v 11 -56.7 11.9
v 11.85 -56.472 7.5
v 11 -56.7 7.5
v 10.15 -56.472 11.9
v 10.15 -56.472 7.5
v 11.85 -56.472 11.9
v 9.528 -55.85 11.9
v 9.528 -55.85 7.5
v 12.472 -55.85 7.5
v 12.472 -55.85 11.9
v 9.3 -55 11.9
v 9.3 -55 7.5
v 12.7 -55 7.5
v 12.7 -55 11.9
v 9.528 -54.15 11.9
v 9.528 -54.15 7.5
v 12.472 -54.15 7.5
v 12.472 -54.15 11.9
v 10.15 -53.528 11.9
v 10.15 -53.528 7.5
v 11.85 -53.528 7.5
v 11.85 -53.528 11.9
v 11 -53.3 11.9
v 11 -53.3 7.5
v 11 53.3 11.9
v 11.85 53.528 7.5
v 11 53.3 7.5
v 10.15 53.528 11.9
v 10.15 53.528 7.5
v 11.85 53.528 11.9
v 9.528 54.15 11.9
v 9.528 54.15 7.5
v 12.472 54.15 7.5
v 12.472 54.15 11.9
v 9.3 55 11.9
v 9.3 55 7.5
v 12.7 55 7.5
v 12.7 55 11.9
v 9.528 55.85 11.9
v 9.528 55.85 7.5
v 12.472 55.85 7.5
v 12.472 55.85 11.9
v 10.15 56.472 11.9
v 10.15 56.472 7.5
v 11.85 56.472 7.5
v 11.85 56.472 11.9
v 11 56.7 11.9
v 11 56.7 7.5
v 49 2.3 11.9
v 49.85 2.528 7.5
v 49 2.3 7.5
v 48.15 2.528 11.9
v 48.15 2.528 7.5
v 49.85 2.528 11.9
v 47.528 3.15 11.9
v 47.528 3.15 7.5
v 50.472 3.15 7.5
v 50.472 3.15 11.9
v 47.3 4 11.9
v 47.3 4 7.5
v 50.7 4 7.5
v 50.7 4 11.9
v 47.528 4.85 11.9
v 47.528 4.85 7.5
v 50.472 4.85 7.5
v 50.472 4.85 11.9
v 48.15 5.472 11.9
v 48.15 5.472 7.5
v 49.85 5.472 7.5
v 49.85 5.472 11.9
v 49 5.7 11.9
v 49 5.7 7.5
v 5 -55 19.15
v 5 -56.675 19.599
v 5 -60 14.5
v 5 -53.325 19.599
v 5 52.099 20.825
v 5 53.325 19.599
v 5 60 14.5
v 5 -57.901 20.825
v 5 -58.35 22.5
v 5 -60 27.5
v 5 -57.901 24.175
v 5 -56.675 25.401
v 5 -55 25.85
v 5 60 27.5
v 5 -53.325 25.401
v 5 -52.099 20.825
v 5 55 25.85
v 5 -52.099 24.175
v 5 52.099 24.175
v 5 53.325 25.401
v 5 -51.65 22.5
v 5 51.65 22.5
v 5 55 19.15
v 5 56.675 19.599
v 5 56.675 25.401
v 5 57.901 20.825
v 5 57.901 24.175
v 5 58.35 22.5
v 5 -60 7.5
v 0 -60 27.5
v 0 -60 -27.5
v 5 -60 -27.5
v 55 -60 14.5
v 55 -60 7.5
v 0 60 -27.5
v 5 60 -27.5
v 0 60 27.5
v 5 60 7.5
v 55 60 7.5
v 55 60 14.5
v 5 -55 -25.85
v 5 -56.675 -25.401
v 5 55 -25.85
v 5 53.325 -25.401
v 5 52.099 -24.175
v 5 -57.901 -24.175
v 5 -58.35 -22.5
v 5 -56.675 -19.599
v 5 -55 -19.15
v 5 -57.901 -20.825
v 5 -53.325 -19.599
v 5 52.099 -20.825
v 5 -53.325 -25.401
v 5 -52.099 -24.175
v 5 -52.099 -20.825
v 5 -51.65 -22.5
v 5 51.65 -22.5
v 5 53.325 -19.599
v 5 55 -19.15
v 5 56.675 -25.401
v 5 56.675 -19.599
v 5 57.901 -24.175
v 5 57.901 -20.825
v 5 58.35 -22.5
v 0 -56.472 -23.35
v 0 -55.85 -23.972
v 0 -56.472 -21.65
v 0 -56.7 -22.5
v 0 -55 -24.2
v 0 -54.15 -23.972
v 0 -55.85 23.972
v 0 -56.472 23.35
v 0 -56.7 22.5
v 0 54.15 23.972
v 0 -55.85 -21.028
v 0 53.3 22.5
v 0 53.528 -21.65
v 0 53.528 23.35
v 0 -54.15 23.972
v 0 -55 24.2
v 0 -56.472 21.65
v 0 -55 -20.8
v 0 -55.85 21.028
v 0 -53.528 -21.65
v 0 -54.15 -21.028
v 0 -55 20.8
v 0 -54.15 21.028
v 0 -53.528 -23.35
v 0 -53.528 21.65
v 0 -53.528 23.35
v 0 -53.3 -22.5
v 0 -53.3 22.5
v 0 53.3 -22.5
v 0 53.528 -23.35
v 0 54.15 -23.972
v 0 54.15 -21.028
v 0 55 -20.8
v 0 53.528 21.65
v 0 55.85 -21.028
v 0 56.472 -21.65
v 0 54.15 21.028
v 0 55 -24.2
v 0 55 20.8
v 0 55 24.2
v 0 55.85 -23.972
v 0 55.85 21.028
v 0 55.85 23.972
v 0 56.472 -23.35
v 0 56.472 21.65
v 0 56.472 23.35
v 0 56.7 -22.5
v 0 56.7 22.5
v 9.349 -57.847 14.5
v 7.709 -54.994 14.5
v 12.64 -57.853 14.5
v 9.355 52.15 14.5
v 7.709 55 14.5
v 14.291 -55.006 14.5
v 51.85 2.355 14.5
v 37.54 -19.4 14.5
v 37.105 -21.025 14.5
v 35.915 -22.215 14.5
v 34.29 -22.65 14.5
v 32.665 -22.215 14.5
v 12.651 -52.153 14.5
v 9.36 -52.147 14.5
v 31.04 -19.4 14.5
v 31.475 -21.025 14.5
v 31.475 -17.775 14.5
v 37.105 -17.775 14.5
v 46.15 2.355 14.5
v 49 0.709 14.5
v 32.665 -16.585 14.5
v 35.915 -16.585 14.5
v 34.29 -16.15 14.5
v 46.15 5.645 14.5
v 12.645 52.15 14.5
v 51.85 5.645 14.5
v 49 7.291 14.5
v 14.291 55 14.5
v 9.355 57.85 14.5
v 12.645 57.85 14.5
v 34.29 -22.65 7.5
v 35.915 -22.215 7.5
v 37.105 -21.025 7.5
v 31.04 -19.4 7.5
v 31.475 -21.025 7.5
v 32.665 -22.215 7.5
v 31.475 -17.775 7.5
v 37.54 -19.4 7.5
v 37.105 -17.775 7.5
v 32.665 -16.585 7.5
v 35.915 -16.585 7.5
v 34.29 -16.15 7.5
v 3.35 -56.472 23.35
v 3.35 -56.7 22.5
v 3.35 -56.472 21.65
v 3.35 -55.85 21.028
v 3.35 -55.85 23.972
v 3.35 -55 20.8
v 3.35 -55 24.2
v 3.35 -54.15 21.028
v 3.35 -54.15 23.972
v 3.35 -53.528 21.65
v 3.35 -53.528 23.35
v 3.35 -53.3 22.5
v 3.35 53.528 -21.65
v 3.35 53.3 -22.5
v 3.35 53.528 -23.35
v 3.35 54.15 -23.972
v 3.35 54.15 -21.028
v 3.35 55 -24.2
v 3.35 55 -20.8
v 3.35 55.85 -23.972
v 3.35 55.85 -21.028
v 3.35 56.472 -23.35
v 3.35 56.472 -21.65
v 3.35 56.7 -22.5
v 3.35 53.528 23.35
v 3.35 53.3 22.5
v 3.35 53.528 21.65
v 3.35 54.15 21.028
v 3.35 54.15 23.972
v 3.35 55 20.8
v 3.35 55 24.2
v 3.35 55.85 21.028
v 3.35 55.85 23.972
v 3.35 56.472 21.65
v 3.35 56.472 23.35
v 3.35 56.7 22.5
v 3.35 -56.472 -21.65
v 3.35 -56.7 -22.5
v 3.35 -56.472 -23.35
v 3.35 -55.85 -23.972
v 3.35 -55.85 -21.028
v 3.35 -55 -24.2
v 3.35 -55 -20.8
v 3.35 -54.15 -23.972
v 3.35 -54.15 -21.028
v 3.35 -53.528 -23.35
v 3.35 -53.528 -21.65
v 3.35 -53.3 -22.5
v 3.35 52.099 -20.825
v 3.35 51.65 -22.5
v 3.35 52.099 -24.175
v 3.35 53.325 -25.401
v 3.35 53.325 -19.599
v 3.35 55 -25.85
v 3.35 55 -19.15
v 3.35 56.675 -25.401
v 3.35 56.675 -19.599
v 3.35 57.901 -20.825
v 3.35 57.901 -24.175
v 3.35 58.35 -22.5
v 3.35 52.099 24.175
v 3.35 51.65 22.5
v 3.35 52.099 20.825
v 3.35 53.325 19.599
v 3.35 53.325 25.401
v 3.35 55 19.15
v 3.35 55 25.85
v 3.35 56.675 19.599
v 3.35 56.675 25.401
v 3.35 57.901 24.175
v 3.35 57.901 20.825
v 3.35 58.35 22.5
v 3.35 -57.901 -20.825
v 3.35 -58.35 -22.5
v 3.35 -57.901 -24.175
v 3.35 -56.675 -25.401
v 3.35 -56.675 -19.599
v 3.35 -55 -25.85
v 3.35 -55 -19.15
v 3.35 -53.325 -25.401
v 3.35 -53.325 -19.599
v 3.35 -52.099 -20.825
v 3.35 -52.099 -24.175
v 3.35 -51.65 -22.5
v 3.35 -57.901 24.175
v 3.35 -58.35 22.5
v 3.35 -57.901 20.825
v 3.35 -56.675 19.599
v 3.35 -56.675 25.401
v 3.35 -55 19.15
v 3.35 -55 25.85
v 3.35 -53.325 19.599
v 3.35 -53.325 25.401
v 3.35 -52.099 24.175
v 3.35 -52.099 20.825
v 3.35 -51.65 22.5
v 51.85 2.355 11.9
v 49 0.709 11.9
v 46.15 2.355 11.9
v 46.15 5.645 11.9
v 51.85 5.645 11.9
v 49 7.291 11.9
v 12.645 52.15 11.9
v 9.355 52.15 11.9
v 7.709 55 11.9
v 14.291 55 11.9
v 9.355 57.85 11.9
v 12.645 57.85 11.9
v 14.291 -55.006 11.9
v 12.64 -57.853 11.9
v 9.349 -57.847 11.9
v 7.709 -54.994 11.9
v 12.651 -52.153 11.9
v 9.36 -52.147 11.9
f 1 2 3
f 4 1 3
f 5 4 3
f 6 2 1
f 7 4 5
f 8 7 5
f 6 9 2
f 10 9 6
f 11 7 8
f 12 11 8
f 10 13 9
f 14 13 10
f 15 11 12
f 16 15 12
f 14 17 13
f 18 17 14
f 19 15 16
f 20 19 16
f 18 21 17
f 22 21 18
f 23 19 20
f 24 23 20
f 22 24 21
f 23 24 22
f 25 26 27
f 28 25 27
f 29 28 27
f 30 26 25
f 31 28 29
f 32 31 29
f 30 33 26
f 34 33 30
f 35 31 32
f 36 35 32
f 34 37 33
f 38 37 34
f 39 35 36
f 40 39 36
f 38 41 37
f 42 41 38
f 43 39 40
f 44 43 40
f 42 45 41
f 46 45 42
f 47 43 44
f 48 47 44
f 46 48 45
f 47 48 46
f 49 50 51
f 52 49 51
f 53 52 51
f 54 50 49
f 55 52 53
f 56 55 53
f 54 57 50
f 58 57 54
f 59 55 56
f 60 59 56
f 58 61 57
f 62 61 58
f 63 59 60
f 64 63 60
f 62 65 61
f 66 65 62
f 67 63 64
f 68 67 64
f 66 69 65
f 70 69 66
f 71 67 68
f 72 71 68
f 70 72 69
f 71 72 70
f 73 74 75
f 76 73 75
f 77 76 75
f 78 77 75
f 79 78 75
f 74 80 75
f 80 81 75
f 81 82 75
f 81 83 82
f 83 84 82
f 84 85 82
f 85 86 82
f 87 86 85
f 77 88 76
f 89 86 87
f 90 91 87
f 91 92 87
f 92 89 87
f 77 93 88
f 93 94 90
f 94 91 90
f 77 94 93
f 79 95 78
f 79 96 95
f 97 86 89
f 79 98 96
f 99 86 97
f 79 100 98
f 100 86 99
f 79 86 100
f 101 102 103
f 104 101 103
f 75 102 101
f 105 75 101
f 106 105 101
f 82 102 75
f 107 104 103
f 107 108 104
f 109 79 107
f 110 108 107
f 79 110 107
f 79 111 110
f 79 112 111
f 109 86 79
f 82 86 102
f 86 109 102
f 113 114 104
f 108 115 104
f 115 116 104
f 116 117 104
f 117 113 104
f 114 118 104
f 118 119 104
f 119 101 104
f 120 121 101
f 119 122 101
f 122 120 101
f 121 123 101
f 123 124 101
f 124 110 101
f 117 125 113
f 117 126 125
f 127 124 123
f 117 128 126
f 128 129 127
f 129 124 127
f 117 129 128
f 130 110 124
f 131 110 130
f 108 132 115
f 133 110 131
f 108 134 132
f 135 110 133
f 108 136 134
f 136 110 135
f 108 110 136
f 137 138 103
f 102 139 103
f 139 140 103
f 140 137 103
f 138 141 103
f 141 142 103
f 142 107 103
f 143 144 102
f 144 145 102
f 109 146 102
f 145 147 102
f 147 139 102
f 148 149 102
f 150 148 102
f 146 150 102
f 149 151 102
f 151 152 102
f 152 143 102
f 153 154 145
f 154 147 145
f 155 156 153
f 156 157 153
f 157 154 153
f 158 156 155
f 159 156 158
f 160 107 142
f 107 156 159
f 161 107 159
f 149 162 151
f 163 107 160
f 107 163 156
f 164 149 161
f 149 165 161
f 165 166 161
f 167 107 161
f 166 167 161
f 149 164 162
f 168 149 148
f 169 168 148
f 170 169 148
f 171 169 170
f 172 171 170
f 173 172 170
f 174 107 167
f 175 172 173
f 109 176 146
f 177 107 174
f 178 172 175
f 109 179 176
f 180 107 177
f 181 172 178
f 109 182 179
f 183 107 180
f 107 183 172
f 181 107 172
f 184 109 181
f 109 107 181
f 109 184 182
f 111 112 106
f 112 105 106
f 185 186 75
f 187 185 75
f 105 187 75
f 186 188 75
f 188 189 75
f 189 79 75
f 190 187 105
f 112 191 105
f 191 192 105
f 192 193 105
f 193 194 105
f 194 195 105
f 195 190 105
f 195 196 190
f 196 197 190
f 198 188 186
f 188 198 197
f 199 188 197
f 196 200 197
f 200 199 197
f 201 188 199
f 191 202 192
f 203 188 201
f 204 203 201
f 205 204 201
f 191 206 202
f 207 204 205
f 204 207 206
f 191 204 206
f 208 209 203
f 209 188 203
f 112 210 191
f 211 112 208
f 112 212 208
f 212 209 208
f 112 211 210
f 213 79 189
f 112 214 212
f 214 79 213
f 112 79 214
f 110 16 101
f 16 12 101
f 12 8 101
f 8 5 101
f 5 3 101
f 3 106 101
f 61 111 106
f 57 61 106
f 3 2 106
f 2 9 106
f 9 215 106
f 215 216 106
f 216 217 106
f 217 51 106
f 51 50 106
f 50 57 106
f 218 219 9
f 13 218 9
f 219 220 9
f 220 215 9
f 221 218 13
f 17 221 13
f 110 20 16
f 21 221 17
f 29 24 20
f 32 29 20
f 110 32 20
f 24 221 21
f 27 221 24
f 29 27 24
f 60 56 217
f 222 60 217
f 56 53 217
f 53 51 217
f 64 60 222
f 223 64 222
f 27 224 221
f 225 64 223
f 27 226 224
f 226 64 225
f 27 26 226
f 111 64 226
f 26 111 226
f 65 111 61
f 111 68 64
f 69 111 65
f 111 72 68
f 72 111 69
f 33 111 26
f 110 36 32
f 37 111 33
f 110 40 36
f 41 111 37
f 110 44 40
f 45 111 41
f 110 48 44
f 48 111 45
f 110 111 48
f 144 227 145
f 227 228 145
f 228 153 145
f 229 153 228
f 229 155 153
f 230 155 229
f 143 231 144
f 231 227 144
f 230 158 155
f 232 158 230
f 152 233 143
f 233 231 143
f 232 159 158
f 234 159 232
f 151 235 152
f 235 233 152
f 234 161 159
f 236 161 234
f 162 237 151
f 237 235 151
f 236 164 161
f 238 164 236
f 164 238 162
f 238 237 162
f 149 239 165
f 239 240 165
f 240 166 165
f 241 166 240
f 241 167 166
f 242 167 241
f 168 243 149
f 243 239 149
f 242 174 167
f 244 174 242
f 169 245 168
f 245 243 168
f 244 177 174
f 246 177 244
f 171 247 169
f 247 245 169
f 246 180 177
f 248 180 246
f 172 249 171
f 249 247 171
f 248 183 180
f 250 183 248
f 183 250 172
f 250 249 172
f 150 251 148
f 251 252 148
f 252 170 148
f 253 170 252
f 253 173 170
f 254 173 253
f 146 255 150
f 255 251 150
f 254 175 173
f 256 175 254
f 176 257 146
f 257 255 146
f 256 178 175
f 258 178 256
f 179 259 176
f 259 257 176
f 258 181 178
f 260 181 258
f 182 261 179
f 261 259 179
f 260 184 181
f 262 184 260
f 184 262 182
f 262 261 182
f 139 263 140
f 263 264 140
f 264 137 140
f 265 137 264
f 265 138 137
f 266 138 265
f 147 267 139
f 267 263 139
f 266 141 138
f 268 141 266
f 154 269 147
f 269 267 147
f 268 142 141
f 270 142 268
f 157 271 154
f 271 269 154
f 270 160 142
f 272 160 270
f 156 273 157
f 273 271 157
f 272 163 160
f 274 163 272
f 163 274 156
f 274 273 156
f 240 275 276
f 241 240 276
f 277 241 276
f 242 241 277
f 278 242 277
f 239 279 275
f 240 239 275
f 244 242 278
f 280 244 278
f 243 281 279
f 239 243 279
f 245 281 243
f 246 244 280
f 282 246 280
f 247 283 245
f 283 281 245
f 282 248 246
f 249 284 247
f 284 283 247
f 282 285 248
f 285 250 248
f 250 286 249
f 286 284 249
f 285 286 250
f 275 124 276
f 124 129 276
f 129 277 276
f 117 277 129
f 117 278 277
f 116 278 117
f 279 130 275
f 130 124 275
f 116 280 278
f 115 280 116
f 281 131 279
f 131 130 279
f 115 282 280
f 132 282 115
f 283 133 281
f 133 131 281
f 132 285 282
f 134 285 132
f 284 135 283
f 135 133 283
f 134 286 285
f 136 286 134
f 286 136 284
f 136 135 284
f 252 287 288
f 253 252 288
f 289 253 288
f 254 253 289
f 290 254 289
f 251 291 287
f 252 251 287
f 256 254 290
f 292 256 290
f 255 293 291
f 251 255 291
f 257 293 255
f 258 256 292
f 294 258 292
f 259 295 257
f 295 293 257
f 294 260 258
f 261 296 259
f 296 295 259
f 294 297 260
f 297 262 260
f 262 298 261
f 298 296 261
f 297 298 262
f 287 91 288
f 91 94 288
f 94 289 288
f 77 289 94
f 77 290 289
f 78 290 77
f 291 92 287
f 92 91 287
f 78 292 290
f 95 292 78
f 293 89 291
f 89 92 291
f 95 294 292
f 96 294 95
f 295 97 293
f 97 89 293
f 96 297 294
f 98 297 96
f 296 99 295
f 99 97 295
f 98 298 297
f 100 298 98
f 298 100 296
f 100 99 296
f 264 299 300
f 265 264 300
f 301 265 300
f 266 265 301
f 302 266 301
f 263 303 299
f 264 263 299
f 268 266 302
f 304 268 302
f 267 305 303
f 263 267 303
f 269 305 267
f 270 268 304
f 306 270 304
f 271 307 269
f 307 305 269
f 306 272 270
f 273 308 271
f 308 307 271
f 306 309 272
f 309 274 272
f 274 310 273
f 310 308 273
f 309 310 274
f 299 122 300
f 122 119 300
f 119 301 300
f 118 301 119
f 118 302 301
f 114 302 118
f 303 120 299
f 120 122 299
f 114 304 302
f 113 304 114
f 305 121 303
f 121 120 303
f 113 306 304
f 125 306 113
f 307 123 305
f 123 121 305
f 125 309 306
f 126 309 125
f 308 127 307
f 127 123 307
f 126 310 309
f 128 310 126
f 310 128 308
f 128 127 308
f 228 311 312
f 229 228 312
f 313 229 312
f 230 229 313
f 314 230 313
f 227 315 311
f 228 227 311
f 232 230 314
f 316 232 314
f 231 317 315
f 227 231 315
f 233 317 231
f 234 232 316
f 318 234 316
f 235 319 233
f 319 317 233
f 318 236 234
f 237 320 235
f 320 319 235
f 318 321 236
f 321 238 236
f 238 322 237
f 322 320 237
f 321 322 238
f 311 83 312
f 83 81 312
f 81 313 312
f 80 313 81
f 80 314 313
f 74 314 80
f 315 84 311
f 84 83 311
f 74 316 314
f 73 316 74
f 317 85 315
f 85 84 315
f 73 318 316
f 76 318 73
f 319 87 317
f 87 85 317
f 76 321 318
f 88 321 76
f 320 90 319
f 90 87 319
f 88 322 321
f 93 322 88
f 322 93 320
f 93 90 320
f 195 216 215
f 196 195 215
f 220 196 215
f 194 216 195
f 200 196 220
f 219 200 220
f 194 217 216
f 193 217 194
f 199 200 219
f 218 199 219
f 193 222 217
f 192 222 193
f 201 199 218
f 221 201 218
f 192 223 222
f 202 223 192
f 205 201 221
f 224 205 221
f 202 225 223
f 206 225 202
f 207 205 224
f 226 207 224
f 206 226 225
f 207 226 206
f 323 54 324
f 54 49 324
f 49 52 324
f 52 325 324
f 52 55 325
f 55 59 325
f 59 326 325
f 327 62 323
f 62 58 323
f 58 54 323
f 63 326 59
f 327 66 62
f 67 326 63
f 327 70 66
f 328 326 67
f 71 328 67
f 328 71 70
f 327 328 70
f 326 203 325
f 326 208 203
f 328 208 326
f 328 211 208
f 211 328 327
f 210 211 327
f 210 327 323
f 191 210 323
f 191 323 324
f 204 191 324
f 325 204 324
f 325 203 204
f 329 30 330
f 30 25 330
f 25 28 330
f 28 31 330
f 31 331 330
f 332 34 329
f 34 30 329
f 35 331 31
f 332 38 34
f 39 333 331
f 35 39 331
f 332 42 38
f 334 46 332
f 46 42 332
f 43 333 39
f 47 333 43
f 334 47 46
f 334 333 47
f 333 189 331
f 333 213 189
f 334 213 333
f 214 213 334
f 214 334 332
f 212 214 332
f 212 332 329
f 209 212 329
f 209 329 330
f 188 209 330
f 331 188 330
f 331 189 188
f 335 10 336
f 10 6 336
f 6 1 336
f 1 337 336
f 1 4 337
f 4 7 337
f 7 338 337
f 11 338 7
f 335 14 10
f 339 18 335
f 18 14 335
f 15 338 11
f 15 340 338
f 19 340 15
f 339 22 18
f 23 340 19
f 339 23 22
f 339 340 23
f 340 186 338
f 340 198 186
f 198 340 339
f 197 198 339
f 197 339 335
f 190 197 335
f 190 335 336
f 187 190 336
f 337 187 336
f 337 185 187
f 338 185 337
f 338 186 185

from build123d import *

# Parameters (mm, degrees)
SKETCH1_W                       = 120
SKETCH1_H                       = 55
BOSS_EXTRUDE1_DEPTH             = 5
BOSS_EXTRUDE2_DEPTH             = 5
BOSS_EXTRUDE2_DEPTH_BACK        = 2
SKETCH2_W                       = 50
SKETCH2_H                       = 120
SKETCH8_R                       = 1.7
CUT_EXTRUDE4_DEPTH              = 5
CBORE_FOR_M3_SBHCS1_D           = 3.4
CBORE_FOR_M3_SBHCS1_DEPTH       = 3.15
CBORE_FOR_M3_SBHCS1_CBORE_D     = 6.7
CBORE_FOR_M3_SBHCS1_CBORE_DEPTH = 1.65
CBORE_FOR_M3_SBHCS1_TIP         = 1.021463052
CBORE_FOR_M3_SBHCS2_D           = 3.4
CBORE_FOR_M3_SBHCS2_DEPTH       = 3.15
CBORE_FOR_M3_SBHCS2_CBORE_D     = 6.7
CBORE_FOR_M3_SBHCS2_CBORE_DEPTH = 1.65
CBORE_FOR_M3_SBHCS2_TIP         = 1.021463052
CBORE_FOR_M3_SBHCS3_D           = 3.4
CBORE_FOR_M3_SBHCS3_DEPTH       = 3.15
CBORE_FOR_M3_SBHCS3_CBORE_D     = 6.7
CBORE_FOR_M3_SBHCS3_CBORE_DEPTH = 1.65
CBORE_FOR_M3_SBHCS3_TIP         = 1.021463052
CBORE_FOR_M3_SBHCS4_D           = 3.4
CBORE_FOR_M3_SBHCS4_DEPTH       = 3.15
CBORE_FOR_M3_SBHCS4_CBORE_D     = 6.7
CBORE_FOR_M3_SBHCS4_CBORE_DEPTH = 1.65
CBORE_FOR_M3_SBHCS4_TIP         = 1.021463052
SKETCH13_R                      = 3.25
CUT_EXTRUDE5_DEPTH              = 7
SKETCH14_R                      = 1.7
CUT_EXTRUDE6_DEPTH              = 7
SKETCH16_R                      = 1.7
CUT_EXTRUDE8_DEPTH              = 7
CUT_EXTRUDE9_DEPTH              = 2.6


with BuildPart() as part:
    # Sketch1 → Boss-Extrude1 (new body)
    with BuildSketch(Plane.YZ):
        Rectangle(SKETCH1_W, SKETCH1_H)
    extrude(amount=BOSS_EXTRUDE1_DEPTH)

    # Sketch2 → Boss-Extrude2 (add, two sides: drawn at the far end of the back side and taken through both)
    with BuildSketch(Plane(origin=(0, 0, 12.5), x_dir=(-1, 0, 0), z_dir=(0, 0, -1)).offset(-BOSS_EXTRUDE2_DEPTH_BACK)):
        with Locations((-30, 0)):
            Rectangle(SKETCH2_W, SKETCH2_H)
    extrude(amount=BOSS_EXTRUDE2_DEPTH + BOSS_EXTRUDE2_DEPTH_BACK)

    # Sketch8 → Cut-Extrude4 (cut)
    with BuildSketch(Plane.YZ.offset(5)):
        with Locations((-55, 22.5)):
            Circle(SKETCH8_R)
        with Locations((-55, -22.5)):
            Circle(SKETCH8_R)
        with Locations((55, 22.5)):
            Circle(SKETCH8_R)
        with Locations((55, -22.5)):
            Circle(SKETCH8_R)
    extrude(amount=-CUT_EXTRUDE4_DEPTH, mode=Mode.SUBTRACT)

    # CBORE for M3 SBHCS1
    with Locations(Plane(origin=(5, 55, -22.5), x_dir=(0, 0, 1), z_dir=(1, 0, 0))):
        with Locations((0, 0)):
            CounterBoreHole(CBORE_FOR_M3_SBHCS1_D / 2, CBORE_FOR_M3_SBHCS1_CBORE_D / 2, CBORE_FOR_M3_SBHCS1_CBORE_DEPTH, depth=CBORE_FOR_M3_SBHCS1_DEPTH)
            with Locations((0, 0, -(CBORE_FOR_M3_SBHCS1_DEPTH + CBORE_FOR_M3_SBHCS1_TIP / 2))):  # 118° drill point
                Cone(0, CBORE_FOR_M3_SBHCS1_D / 2, CBORE_FOR_M3_SBHCS1_TIP, mode=Mode.SUBTRACT)

    # CBORE for M3 SBHCS2
    with Locations(Plane(origin=(5, 55, 22.5), x_dir=(0, 0, 1), z_dir=(1, 0, 0))):
        with Locations((0, 0)):
            CounterBoreHole(CBORE_FOR_M3_SBHCS2_D / 2, CBORE_FOR_M3_SBHCS2_CBORE_D / 2, CBORE_FOR_M3_SBHCS2_CBORE_DEPTH, depth=CBORE_FOR_M3_SBHCS2_DEPTH)
            with Locations((0, 0, -(CBORE_FOR_M3_SBHCS2_DEPTH + CBORE_FOR_M3_SBHCS2_TIP / 2))):  # 118° drill point
                Cone(0, CBORE_FOR_M3_SBHCS2_D / 2, CBORE_FOR_M3_SBHCS2_TIP, mode=Mode.SUBTRACT)

    # CBORE for M3 SBHCS3
    with Locations(Plane(origin=(5, -55, -22.5), x_dir=(0, 0, 1), z_dir=(1, 0, 0))):
        with Locations((0, 0)):
            CounterBoreHole(CBORE_FOR_M3_SBHCS3_D / 2, CBORE_FOR_M3_SBHCS3_CBORE_D / 2, CBORE_FOR_M3_SBHCS3_CBORE_DEPTH, depth=CBORE_FOR_M3_SBHCS3_DEPTH)
            with Locations((0, 0, -(CBORE_FOR_M3_SBHCS3_DEPTH + CBORE_FOR_M3_SBHCS3_TIP / 2))):  # 118° drill point
                Cone(0, CBORE_FOR_M3_SBHCS3_D / 2, CBORE_FOR_M3_SBHCS3_TIP, mode=Mode.SUBTRACT)

    # CBORE for M3 SBHCS4
    with Locations(Plane(origin=(5, -55, 22.5), x_dir=(0, 0, 1), z_dir=(1, 0, 0))):
        with Locations((0, 0)):
            CounterBoreHole(CBORE_FOR_M3_SBHCS4_D / 2, CBORE_FOR_M3_SBHCS4_CBORE_D / 2, CBORE_FOR_M3_SBHCS4_CBORE_DEPTH, depth=CBORE_FOR_M3_SBHCS4_DEPTH)
            with Locations((0, 0, -(CBORE_FOR_M3_SBHCS4_DEPTH + CBORE_FOR_M3_SBHCS4_TIP / 2))):  # 118° drill point
                Cone(0, CBORE_FOR_M3_SBHCS4_D / 2, CBORE_FOR_M3_SBHCS4_TIP, mode=Mode.SUBTRACT)

    # Sketch13 → Cut-Extrude5 (cut)
    with BuildSketch(Plane(origin=(0, 0, 7.5), x_dir=(1, 0, 0), z_dir=(0, 0, -1))):
        with Locations((34.29, 19.4)):
            Circle(SKETCH13_R)
    extrude(amount=-CUT_EXTRUDE5_DEPTH, mode=Mode.SUBTRACT)

    # Sketch14 → Cut-Extrude6 (cut)
    with BuildSketch(Plane(origin=(0, 0, 7.5), x_dir=(1, 0, 0), z_dir=(0, 0, -1))):
        with Locations((11, -55)):
            Circle(SKETCH14_R)
        with Locations((11, 55)):
            Circle(SKETCH14_R)
    extrude(amount=-CUT_EXTRUDE6_DEPTH, mode=Mode.SUBTRACT)

    # Sketch16 → Cut-Extrude8 (cut)
    with BuildSketch(Plane(origin=(0, 0, 7.5), x_dir=(1, 0, 0), z_dir=(0, 0, -1))):
        with Locations((49, -4)):
            Circle(SKETCH16_R)
    extrude(amount=-CUT_EXTRUDE8_DEPTH, mode=Mode.SUBTRACT)

    # Sketch17 → Cut-Extrude9 (cut)
    with BuildSketch(Plane.XY.offset(14.5)):
        Polygon((7.709103466, 55), (9.354551733, 52.15), (12.645448267, 52.15), (14.290896534, 55), (12.645448267, 57.85), (9.354551733, 57.85), align=None)
        Polygon((46.15, 2.354551733), (49, 0.709103466), (51.85, 2.354551733), (51.85, 5.645448267), (49, 7.290896534), (46.15, 5.645448267), align=None)
        Polygon((7.709108837, -54.9940543), (9.349405291, -57.847022499), (12.640296454, -57.852968198), (14.290891163, -55.0059457), (12.650594709, -52.152977501), (9.359703546, -52.147031802), align=None)
    extrude(amount=-CUT_EXTRUDE9_DEPTH, mode=Mode.SUBTRACT)


solid = part.part
